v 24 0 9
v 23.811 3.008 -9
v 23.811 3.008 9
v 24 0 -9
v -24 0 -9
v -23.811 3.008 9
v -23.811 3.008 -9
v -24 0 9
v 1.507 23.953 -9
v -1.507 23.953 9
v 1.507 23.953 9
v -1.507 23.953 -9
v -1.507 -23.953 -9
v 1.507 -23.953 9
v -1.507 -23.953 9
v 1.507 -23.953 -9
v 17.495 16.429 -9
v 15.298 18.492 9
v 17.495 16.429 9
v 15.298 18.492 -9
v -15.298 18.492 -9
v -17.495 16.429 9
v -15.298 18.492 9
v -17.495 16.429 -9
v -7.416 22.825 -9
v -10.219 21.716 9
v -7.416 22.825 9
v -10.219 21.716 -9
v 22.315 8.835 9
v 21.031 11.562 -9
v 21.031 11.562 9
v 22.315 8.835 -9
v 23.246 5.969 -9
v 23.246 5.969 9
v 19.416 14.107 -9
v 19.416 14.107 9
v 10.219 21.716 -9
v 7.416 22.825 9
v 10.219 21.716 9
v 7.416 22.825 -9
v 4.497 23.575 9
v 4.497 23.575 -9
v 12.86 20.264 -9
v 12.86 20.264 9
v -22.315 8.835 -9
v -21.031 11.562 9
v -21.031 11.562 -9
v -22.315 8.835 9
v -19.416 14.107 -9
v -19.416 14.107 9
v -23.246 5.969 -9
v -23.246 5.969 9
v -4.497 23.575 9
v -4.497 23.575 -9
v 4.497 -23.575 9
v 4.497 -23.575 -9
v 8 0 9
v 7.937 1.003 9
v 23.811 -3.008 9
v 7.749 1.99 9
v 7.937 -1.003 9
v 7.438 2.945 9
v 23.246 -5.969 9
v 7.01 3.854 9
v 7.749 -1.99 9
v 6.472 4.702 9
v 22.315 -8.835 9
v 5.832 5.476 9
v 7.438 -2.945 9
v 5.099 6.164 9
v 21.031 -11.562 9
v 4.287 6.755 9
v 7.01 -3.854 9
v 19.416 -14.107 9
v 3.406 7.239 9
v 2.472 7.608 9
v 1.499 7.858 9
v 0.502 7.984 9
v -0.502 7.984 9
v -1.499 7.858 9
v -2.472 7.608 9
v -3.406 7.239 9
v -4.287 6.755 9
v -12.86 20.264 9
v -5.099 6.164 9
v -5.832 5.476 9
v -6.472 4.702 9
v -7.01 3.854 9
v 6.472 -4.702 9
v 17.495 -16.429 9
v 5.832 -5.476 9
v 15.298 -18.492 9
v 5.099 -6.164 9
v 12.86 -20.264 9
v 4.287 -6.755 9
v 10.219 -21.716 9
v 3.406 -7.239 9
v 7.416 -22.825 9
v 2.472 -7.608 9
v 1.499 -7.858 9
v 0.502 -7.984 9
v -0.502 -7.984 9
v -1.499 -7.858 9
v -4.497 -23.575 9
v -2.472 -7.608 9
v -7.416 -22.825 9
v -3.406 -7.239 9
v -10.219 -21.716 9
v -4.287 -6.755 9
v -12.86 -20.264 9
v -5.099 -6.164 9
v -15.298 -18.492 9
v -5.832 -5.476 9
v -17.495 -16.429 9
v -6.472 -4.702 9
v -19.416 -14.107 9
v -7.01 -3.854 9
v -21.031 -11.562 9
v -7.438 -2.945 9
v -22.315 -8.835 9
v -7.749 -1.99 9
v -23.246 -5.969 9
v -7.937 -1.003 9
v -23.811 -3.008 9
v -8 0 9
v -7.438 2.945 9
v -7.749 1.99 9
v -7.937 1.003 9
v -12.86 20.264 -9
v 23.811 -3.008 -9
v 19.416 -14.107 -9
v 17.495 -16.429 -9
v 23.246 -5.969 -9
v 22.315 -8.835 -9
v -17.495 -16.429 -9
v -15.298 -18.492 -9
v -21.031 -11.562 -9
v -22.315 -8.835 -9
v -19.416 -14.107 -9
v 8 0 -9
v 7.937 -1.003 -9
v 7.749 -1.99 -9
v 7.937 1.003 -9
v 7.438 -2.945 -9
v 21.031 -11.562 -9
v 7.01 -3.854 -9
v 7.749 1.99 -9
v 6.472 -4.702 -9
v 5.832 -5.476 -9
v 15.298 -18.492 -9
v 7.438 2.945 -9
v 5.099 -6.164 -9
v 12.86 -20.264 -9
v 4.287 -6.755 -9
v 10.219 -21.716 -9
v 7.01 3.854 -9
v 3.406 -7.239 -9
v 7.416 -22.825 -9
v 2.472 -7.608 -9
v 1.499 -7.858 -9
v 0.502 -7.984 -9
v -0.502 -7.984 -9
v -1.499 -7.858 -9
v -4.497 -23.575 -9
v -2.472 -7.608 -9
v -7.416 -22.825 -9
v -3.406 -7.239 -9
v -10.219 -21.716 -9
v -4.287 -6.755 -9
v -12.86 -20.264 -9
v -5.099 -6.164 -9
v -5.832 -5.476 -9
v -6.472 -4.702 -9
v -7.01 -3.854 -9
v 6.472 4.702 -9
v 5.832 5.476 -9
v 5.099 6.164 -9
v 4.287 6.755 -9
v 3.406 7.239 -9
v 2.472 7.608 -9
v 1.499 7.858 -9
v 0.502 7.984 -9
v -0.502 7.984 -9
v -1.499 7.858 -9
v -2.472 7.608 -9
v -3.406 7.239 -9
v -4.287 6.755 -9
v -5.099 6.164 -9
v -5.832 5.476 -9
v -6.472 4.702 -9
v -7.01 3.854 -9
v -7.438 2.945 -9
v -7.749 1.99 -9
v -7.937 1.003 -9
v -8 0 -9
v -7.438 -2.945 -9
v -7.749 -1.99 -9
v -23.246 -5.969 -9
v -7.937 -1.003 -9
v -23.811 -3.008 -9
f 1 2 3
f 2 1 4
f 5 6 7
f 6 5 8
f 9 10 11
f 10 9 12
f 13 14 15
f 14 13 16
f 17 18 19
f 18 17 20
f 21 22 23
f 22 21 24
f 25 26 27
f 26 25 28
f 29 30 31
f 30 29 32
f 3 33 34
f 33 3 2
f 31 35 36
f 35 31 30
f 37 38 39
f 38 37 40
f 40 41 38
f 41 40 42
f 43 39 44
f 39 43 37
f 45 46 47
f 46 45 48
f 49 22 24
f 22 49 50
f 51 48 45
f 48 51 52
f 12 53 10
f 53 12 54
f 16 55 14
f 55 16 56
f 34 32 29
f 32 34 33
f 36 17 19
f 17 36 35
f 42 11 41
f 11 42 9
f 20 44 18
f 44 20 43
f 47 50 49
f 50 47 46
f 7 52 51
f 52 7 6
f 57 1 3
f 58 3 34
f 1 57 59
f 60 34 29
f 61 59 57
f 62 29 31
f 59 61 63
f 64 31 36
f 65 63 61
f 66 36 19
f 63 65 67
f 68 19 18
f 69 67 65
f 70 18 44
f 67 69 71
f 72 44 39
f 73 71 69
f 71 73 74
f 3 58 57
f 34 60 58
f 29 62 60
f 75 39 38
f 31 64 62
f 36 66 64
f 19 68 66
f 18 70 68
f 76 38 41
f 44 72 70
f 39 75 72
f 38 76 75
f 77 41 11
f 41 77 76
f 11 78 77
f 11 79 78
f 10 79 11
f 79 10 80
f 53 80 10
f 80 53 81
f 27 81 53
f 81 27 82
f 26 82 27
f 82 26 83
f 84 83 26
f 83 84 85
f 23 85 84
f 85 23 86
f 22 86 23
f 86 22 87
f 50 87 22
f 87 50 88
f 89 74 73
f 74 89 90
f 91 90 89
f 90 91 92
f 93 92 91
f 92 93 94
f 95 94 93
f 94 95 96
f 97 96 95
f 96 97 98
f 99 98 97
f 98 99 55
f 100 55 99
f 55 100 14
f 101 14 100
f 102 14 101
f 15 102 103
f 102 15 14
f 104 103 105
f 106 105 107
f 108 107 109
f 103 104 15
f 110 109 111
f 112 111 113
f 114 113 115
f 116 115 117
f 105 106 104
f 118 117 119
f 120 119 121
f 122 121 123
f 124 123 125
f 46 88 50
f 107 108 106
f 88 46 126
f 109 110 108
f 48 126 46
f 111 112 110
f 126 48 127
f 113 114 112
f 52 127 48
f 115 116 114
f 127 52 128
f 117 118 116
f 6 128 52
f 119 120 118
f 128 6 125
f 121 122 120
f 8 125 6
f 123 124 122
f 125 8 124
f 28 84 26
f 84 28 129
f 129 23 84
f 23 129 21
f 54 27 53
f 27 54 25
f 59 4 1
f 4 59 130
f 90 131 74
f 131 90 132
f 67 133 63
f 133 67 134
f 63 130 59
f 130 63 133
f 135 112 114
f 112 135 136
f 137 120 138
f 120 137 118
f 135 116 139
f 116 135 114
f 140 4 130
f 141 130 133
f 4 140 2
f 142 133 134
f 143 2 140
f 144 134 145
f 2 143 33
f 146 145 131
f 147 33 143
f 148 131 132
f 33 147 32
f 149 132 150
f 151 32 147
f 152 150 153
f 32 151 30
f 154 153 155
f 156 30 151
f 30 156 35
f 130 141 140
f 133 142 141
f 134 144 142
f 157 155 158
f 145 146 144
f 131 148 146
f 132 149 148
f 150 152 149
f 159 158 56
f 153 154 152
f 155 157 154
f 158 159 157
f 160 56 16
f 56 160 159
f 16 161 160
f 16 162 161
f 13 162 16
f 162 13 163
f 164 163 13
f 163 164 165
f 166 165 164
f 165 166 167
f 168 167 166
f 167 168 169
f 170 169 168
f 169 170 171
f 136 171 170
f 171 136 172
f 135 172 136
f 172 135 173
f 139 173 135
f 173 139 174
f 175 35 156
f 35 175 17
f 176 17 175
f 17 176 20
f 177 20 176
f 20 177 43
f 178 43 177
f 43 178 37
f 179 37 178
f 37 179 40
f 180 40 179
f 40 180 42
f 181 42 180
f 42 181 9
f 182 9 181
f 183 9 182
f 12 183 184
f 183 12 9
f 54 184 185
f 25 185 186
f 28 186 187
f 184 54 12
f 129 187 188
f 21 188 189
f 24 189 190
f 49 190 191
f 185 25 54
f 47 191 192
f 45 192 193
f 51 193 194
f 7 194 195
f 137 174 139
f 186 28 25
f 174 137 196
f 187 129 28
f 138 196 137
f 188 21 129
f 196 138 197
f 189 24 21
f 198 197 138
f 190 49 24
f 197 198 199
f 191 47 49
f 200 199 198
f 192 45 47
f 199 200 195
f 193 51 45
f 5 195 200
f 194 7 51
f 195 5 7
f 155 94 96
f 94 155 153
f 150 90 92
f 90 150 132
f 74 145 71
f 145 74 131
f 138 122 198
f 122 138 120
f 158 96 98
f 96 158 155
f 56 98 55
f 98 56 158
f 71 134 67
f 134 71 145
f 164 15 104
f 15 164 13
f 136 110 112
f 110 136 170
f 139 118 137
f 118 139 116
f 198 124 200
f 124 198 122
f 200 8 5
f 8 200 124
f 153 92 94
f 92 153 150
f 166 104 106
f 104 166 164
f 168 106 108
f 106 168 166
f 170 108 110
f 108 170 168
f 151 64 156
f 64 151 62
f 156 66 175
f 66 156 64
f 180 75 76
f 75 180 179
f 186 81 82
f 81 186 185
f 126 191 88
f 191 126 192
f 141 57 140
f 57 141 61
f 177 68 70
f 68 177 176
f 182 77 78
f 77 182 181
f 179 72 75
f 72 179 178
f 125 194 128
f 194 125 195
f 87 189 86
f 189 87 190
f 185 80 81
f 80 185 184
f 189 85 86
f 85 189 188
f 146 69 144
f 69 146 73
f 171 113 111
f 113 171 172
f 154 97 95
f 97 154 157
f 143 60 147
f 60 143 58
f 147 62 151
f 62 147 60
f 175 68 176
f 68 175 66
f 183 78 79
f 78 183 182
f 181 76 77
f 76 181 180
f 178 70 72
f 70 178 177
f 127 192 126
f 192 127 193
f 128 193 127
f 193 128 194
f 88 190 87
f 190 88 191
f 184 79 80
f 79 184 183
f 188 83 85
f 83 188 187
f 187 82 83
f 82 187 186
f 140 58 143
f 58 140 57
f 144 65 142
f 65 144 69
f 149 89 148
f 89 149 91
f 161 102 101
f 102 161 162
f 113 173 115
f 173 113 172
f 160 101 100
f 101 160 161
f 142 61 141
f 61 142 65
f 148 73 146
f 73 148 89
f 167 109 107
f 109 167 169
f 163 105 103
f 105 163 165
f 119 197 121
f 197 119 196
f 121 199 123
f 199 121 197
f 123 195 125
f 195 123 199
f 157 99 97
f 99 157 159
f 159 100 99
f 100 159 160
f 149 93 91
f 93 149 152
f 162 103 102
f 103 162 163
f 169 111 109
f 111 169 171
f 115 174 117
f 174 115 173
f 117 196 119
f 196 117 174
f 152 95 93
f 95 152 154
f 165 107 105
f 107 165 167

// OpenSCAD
$fn = 50;


difference() {
	union() {
		translate(v = [0, 0, -9.0000000000]) {
			cylinder(h = 18, r = 24.0000000000);
		}
	}
	union() {
		translate(v = [0, 0, -100.0000000000]) {
			cylinder(h = 200, r = 8);
		}
	}
}
